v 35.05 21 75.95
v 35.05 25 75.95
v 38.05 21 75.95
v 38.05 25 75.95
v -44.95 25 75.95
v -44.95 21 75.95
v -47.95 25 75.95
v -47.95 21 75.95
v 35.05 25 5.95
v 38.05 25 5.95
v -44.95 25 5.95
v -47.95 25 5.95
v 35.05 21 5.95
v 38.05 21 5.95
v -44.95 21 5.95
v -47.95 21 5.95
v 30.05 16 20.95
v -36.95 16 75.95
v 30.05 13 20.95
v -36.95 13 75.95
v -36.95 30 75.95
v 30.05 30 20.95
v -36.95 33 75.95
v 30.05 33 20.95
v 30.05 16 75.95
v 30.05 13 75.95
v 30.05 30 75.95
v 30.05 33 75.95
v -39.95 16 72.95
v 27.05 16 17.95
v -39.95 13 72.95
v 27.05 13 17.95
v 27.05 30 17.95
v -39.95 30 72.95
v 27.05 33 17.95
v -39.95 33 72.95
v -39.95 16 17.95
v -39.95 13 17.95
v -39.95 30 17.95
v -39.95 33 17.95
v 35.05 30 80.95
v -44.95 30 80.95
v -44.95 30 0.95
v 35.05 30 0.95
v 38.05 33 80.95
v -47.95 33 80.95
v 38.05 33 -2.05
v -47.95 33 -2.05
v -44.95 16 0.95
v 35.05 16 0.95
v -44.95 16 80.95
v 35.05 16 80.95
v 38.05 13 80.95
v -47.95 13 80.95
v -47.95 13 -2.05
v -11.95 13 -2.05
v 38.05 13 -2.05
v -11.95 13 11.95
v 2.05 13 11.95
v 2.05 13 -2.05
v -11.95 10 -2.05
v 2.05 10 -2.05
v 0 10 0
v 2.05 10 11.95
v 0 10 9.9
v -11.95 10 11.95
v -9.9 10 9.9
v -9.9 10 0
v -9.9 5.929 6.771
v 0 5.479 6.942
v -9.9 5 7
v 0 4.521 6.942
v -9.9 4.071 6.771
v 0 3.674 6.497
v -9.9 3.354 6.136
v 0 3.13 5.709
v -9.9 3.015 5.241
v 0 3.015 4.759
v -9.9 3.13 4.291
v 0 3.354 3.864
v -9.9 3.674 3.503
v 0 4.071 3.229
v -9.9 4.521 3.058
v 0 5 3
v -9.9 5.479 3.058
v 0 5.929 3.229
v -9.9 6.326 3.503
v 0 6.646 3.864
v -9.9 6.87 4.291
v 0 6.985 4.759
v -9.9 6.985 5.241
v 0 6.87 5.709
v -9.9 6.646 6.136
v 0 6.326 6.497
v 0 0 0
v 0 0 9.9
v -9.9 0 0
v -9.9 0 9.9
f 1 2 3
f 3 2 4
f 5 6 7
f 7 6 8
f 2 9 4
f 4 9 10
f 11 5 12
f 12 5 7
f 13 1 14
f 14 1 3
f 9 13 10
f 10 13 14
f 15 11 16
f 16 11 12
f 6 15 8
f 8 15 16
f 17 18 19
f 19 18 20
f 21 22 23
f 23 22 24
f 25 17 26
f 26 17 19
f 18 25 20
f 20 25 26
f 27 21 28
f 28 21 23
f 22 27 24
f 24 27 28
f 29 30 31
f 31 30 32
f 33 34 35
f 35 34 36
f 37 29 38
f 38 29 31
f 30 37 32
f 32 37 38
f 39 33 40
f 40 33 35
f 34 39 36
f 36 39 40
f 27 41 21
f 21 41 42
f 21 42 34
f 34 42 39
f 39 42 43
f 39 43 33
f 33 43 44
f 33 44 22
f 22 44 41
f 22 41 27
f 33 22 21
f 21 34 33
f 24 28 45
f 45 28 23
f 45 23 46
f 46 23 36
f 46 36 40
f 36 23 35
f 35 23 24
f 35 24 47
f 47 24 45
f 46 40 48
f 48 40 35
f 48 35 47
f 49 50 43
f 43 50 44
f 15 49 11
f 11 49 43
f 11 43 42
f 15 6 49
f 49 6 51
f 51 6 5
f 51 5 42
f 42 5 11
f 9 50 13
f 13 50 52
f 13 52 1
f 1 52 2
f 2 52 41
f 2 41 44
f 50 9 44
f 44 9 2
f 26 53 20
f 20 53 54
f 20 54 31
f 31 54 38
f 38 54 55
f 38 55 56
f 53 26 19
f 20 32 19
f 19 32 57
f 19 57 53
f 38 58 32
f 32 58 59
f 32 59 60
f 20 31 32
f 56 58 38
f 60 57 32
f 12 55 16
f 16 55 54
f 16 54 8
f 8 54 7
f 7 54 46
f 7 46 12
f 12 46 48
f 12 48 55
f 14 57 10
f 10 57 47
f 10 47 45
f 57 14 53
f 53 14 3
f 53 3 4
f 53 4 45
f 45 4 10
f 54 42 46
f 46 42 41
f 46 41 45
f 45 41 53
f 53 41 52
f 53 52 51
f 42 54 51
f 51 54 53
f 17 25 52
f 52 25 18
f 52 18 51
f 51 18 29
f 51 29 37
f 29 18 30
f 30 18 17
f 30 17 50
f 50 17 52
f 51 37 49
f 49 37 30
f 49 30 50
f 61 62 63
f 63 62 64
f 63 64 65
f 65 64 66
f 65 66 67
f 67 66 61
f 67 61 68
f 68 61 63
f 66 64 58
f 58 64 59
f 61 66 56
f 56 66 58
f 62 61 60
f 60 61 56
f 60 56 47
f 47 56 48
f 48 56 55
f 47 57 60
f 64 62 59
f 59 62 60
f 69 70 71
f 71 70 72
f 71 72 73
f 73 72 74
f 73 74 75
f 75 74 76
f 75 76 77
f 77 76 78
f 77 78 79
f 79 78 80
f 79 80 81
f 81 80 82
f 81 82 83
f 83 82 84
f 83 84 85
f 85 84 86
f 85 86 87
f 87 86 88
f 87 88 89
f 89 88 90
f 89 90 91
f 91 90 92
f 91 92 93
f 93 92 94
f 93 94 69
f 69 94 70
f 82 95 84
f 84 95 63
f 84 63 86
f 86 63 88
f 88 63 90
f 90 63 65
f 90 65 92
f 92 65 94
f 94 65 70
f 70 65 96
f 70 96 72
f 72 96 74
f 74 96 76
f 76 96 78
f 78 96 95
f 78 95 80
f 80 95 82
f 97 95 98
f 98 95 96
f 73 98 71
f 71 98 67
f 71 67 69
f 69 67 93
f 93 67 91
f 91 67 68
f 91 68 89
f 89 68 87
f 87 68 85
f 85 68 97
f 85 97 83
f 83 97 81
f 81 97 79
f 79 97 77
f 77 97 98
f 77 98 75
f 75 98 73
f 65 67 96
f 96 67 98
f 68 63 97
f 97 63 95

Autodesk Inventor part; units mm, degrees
ref_plane "YZ Plane" through (0, 0, 0) normal (1, 0, 0) x (0, 1, 0)
ref_plane "XZ Plane" through (0, 0, 0) normal (0, 1, 0) x (-1, 0, 0)
ref_plane "XY Plane" through (0, 0, 0) normal (0, 0, 1) x (1, 0, 0)
sketch "Sketch1" plane through (0, 0, 0) normal (0, 0, 1) x (1, 0, 0)
  line L0 (0, 0) -> (-9.9, 0)
  line L1 (-9.9, 0) -> (-9.9, 10)
  line L2 (-9.9, 10) -> (0, 10)
  line L3 (0, 10) -> (0, 0)
  dimension "d0" = 9.9
  dimension "d1" = 10
extrude "Extrusion1" add sketch "Sketch1" along normal blind 9.9
sketch "Sketch2" plane through (0, 0, 0) normal (1, 0, 0) x (0, 0, -1)
  circle A0 centre (-5, 5) radius 2
  line L0 (0, 0) -> (-9.9, 0) projected
  line L1 (0, 0) -> (0, 10) projected
  point P0 (-4.95, 0)
  dimension "d4" = 4
  dimension "d5" = 5
  dimension "d6" = 5
extrude "Extrusion2" cut sketch "Sketch2" against normal blind 10
sketch "Sketch3" plane through (-9.9, 10, 0) normal (0, 1, 0) x (1, 0, 0)
  line L0 (0, 0) -> (0, -9.9) projected
  circle A0 centre (4.95, -4.95) radius 7.0004
  line L1 (9.9, 0) -> (0, 0) projected
  line L2 (-2.0504, -11.9504) -> (11.9504, -11.9504)
  line L3 (11.9504, -11.9504) -> (11.9504, 2.0504)
  line L4 (11.9504, 2.0504) -> (-2.0504, 2.0504)
  line L5 (-2.0504, 2.0504) -> (-2.0504, -11.9504)
  point P0 (-2.0504, -4.95)
  point P1 (4.95, 2.0504)
  point P2 (4.95, -11.9504)
  point P3 (11.9504, -4.95)
  dimension "d9" = 4.95
  dimension "d10" = 4.95
extrude "Extrusion3" add sketch "Sketch3" along normal blind 3
sketch "Sketch14" plane through (-9.9, 13, 0) normal (0, 1, 0) x (1, 0, 0)
  line L0 (-35.05, -80.9496) -> (44.95, -80.9496)
  line L1 (44.95, -80.9496) -> (44.95, 2.0504)
  line L2 (44.95, 2.0504) -> (-35.05, 2.0504)
  line L3 (-35.05, 2.0504) -> (-35.05, -80.9496)
  line L4 (11.9504, 2.0504) -> (-2.0504, 2.0504) projected
  line L5 (-35.05, 2.0504) -> (-38.05, 2.0504)
  line L6 (-38.05, 2.0504) -> (-38.05, -80.9496)
  line L7 (-38.05, -80.9496) -> (-35.05, -80.9496)
  line L8 (-35.05, -80.9496) -> (-35.05, 2.0504)
  line L9 (44.95, -80.9496) -> (47.95, -80.9496)
  line L10 (47.95, -80.9496) -> (47.95, 2.0504)
  line L11 (47.95, 2.0504) -> (44.95, 2.0504)
  line L12 (44.95, 2.0504) -> (44.95, -80.9496)
  point P0 (9.9, 0)
  point P1 (-35.05, -39.4496)
  point P2 (4.95, 2.0504)
  point P3 (4.95, 2.0504)
  point P4 (44.95, 2.0504)
  dimension "d60" = 40
  dimension "d61" = 40
  dimension "d62" = 0
  dimension "d63" = 83
  dimension "d64" = 3
  dimension "d65" = 3
  dimension "d68" = 83
extrude "Extrusion14" add sketch "Sketch14" along normal blind 3
sketch "Sketch15" plane through (-9.9, 16, 0) normal (0, 1, 0) x (1, 0, 0)
  line L0 (-2.0504, 2.0504) -> (-38.05, 2.0504) projected
  line L1 (-38.05, -80.9496) -> (47.95, -80.9496) projected
  line L2 (-38.05, 2.0504) -> (-35.05, 2.0504)
  line L3 (-35.05, 2.0504) -> (-35.05, -80.9496)
  line L4 (-35.05, -80.9496) -> (-38.05, -80.9496)
  line L5 (-38.05, -80.9496) -> (-38.05, 2.0504)
  line L6 (47.95, -80.9496) -> (47.95, 2.0504) projected
  line L7 (47.95, 2.0504) -> (44.95, 2.0504)
  line L8 (44.95, 2.0504) -> (44.95, -80.9496)
  line L9 (44.95, -80.9496) -> (47.95, -80.9496)
  line L10 (47.95, -80.9496) -> (47.95, 2.0504)
  line L11 (-38.05, 2.0504) -> (47.95, 2.0504)
  line L12 (47.95, 2.0504) -> (47.95, -0.9496)
  line L13 (47.95, -0.9496) -> (-38.05, -0.9496)
  line L14 (-38.05, -0.9496) -> (-38.05, 2.0504)
  point P0 (9.9, 0)
  point P1 (-35.05, -0.9496)
  point P2 (44.95, -0.9496)
  dimension "d69" = 3
  dimension "d70" = 3
  dimension "d71" = 3
extrude "Extrusion15" add sketch "Sketch15" along normal blind 14 contours L11 L8 L13 L3 L0 | L3 L13 L5 L0 | L7 L6 L13 L8 | L3 L1 L5 L13 | L13 L6 L1 L8
sketch "Sketch16" plane through (-9.9, 30, 0) normal (0, 1, 0) x (1, 0, 0)
  line L0 (47.95, 2.0504) -> (-38.05, 2.0504) projected
  line L1 (47.95, -80.9496) -> (47.95, 2.0504) projected
  line L2 (-38.05, 2.0504) -> (47.95, 2.0504)
  line L3 (47.95, 2.0504) -> (47.95, -80.9496)
  line L4 (47.95, -80.9496) -> (-38.05, -80.9496)
  line L5 (-38.05, -80.9496) -> (-38.05, 2.0504)
  point P0 (9.9, 0)
extrude "Extrusion16" add sketch "Sketch16" along normal blind 3
sketch "Sketch17" plane through (-9.9, 13, 0) normal (0, -1, 0) x (1, 0, 0)
  line L0 (39.95, 75.9496) -> (-30.05, 75.9496)
  line L1 (-30.05, 75.9496) -> (-30.05, 17.9496)
  line L2 (-30.05, 17.9496) -> (39.95, 17.9496)
  line L3 (39.95, 17.9496) -> (39.95, 75.9496)
  line L4 (47.95, -2.0504) -> (11.9504, -2.0504) projected
  line L5 (44.95, 80.9496) -> (44.95, 0.9496) projected
  line L6 (-38.05, 80.9496) -> (47.95, 80.9496) projected
  line L7 (-35.05, 0.9496) -> (-35.05, 80.9496) projected
  line L8 (36.95, 17.9496) -> (-30.05, 72.9496)
  line L9 (39.95, 20.9496) -> (-27.05, 75.9496)
  point P0 (9.9, 0)
  dimension "d76" = 20
  dimension "d77" = 5
  dimension "d78" = 5
  dimension "d79" = 5
  dimension "d88" = 3
  dimension "d89" = 3
  dimension "d90" = 3
extrude "Extrusion17" cut sketch "Sketch17" against normal blind 33 contours L3 L9 L0 | L8 L2 L1
sketch "Sketch18" plane through (38.05, 13, 80.9496) normal (1, 0, 0) x (0, 0, -1)
  line L0 (5, 12) -> (75, 12)
  line L1 (75, 12) -> (75, 8)
  line L2 (75, 8) -> (5, 8)
  line L3 (5, 8) -> (5, 12)
  line L4 (80, 17) -> (0, 17) projected
  line L5 (0, 3) -> (80, 3) projected
  line L6 (80, 3) -> (80, 17) projected
  line L7 (0, 0) -> (0, 20) projected
  point P0 (80.9496, -13)
  point P1 (80, 10)
  point P2 (75, 10)
  point P3 (0, 10)
  point P4 (5, 10)
  dimension "d82" = 5
  dimension "d83" = 5
  dimension "d84" = 5
  dimension "d85" = 5
extrude "Extrusion18" cut sketch "Sketch18" against normal blind 333 contours L0 L1 L2 L3
properties part number "shot_glass_tray"
